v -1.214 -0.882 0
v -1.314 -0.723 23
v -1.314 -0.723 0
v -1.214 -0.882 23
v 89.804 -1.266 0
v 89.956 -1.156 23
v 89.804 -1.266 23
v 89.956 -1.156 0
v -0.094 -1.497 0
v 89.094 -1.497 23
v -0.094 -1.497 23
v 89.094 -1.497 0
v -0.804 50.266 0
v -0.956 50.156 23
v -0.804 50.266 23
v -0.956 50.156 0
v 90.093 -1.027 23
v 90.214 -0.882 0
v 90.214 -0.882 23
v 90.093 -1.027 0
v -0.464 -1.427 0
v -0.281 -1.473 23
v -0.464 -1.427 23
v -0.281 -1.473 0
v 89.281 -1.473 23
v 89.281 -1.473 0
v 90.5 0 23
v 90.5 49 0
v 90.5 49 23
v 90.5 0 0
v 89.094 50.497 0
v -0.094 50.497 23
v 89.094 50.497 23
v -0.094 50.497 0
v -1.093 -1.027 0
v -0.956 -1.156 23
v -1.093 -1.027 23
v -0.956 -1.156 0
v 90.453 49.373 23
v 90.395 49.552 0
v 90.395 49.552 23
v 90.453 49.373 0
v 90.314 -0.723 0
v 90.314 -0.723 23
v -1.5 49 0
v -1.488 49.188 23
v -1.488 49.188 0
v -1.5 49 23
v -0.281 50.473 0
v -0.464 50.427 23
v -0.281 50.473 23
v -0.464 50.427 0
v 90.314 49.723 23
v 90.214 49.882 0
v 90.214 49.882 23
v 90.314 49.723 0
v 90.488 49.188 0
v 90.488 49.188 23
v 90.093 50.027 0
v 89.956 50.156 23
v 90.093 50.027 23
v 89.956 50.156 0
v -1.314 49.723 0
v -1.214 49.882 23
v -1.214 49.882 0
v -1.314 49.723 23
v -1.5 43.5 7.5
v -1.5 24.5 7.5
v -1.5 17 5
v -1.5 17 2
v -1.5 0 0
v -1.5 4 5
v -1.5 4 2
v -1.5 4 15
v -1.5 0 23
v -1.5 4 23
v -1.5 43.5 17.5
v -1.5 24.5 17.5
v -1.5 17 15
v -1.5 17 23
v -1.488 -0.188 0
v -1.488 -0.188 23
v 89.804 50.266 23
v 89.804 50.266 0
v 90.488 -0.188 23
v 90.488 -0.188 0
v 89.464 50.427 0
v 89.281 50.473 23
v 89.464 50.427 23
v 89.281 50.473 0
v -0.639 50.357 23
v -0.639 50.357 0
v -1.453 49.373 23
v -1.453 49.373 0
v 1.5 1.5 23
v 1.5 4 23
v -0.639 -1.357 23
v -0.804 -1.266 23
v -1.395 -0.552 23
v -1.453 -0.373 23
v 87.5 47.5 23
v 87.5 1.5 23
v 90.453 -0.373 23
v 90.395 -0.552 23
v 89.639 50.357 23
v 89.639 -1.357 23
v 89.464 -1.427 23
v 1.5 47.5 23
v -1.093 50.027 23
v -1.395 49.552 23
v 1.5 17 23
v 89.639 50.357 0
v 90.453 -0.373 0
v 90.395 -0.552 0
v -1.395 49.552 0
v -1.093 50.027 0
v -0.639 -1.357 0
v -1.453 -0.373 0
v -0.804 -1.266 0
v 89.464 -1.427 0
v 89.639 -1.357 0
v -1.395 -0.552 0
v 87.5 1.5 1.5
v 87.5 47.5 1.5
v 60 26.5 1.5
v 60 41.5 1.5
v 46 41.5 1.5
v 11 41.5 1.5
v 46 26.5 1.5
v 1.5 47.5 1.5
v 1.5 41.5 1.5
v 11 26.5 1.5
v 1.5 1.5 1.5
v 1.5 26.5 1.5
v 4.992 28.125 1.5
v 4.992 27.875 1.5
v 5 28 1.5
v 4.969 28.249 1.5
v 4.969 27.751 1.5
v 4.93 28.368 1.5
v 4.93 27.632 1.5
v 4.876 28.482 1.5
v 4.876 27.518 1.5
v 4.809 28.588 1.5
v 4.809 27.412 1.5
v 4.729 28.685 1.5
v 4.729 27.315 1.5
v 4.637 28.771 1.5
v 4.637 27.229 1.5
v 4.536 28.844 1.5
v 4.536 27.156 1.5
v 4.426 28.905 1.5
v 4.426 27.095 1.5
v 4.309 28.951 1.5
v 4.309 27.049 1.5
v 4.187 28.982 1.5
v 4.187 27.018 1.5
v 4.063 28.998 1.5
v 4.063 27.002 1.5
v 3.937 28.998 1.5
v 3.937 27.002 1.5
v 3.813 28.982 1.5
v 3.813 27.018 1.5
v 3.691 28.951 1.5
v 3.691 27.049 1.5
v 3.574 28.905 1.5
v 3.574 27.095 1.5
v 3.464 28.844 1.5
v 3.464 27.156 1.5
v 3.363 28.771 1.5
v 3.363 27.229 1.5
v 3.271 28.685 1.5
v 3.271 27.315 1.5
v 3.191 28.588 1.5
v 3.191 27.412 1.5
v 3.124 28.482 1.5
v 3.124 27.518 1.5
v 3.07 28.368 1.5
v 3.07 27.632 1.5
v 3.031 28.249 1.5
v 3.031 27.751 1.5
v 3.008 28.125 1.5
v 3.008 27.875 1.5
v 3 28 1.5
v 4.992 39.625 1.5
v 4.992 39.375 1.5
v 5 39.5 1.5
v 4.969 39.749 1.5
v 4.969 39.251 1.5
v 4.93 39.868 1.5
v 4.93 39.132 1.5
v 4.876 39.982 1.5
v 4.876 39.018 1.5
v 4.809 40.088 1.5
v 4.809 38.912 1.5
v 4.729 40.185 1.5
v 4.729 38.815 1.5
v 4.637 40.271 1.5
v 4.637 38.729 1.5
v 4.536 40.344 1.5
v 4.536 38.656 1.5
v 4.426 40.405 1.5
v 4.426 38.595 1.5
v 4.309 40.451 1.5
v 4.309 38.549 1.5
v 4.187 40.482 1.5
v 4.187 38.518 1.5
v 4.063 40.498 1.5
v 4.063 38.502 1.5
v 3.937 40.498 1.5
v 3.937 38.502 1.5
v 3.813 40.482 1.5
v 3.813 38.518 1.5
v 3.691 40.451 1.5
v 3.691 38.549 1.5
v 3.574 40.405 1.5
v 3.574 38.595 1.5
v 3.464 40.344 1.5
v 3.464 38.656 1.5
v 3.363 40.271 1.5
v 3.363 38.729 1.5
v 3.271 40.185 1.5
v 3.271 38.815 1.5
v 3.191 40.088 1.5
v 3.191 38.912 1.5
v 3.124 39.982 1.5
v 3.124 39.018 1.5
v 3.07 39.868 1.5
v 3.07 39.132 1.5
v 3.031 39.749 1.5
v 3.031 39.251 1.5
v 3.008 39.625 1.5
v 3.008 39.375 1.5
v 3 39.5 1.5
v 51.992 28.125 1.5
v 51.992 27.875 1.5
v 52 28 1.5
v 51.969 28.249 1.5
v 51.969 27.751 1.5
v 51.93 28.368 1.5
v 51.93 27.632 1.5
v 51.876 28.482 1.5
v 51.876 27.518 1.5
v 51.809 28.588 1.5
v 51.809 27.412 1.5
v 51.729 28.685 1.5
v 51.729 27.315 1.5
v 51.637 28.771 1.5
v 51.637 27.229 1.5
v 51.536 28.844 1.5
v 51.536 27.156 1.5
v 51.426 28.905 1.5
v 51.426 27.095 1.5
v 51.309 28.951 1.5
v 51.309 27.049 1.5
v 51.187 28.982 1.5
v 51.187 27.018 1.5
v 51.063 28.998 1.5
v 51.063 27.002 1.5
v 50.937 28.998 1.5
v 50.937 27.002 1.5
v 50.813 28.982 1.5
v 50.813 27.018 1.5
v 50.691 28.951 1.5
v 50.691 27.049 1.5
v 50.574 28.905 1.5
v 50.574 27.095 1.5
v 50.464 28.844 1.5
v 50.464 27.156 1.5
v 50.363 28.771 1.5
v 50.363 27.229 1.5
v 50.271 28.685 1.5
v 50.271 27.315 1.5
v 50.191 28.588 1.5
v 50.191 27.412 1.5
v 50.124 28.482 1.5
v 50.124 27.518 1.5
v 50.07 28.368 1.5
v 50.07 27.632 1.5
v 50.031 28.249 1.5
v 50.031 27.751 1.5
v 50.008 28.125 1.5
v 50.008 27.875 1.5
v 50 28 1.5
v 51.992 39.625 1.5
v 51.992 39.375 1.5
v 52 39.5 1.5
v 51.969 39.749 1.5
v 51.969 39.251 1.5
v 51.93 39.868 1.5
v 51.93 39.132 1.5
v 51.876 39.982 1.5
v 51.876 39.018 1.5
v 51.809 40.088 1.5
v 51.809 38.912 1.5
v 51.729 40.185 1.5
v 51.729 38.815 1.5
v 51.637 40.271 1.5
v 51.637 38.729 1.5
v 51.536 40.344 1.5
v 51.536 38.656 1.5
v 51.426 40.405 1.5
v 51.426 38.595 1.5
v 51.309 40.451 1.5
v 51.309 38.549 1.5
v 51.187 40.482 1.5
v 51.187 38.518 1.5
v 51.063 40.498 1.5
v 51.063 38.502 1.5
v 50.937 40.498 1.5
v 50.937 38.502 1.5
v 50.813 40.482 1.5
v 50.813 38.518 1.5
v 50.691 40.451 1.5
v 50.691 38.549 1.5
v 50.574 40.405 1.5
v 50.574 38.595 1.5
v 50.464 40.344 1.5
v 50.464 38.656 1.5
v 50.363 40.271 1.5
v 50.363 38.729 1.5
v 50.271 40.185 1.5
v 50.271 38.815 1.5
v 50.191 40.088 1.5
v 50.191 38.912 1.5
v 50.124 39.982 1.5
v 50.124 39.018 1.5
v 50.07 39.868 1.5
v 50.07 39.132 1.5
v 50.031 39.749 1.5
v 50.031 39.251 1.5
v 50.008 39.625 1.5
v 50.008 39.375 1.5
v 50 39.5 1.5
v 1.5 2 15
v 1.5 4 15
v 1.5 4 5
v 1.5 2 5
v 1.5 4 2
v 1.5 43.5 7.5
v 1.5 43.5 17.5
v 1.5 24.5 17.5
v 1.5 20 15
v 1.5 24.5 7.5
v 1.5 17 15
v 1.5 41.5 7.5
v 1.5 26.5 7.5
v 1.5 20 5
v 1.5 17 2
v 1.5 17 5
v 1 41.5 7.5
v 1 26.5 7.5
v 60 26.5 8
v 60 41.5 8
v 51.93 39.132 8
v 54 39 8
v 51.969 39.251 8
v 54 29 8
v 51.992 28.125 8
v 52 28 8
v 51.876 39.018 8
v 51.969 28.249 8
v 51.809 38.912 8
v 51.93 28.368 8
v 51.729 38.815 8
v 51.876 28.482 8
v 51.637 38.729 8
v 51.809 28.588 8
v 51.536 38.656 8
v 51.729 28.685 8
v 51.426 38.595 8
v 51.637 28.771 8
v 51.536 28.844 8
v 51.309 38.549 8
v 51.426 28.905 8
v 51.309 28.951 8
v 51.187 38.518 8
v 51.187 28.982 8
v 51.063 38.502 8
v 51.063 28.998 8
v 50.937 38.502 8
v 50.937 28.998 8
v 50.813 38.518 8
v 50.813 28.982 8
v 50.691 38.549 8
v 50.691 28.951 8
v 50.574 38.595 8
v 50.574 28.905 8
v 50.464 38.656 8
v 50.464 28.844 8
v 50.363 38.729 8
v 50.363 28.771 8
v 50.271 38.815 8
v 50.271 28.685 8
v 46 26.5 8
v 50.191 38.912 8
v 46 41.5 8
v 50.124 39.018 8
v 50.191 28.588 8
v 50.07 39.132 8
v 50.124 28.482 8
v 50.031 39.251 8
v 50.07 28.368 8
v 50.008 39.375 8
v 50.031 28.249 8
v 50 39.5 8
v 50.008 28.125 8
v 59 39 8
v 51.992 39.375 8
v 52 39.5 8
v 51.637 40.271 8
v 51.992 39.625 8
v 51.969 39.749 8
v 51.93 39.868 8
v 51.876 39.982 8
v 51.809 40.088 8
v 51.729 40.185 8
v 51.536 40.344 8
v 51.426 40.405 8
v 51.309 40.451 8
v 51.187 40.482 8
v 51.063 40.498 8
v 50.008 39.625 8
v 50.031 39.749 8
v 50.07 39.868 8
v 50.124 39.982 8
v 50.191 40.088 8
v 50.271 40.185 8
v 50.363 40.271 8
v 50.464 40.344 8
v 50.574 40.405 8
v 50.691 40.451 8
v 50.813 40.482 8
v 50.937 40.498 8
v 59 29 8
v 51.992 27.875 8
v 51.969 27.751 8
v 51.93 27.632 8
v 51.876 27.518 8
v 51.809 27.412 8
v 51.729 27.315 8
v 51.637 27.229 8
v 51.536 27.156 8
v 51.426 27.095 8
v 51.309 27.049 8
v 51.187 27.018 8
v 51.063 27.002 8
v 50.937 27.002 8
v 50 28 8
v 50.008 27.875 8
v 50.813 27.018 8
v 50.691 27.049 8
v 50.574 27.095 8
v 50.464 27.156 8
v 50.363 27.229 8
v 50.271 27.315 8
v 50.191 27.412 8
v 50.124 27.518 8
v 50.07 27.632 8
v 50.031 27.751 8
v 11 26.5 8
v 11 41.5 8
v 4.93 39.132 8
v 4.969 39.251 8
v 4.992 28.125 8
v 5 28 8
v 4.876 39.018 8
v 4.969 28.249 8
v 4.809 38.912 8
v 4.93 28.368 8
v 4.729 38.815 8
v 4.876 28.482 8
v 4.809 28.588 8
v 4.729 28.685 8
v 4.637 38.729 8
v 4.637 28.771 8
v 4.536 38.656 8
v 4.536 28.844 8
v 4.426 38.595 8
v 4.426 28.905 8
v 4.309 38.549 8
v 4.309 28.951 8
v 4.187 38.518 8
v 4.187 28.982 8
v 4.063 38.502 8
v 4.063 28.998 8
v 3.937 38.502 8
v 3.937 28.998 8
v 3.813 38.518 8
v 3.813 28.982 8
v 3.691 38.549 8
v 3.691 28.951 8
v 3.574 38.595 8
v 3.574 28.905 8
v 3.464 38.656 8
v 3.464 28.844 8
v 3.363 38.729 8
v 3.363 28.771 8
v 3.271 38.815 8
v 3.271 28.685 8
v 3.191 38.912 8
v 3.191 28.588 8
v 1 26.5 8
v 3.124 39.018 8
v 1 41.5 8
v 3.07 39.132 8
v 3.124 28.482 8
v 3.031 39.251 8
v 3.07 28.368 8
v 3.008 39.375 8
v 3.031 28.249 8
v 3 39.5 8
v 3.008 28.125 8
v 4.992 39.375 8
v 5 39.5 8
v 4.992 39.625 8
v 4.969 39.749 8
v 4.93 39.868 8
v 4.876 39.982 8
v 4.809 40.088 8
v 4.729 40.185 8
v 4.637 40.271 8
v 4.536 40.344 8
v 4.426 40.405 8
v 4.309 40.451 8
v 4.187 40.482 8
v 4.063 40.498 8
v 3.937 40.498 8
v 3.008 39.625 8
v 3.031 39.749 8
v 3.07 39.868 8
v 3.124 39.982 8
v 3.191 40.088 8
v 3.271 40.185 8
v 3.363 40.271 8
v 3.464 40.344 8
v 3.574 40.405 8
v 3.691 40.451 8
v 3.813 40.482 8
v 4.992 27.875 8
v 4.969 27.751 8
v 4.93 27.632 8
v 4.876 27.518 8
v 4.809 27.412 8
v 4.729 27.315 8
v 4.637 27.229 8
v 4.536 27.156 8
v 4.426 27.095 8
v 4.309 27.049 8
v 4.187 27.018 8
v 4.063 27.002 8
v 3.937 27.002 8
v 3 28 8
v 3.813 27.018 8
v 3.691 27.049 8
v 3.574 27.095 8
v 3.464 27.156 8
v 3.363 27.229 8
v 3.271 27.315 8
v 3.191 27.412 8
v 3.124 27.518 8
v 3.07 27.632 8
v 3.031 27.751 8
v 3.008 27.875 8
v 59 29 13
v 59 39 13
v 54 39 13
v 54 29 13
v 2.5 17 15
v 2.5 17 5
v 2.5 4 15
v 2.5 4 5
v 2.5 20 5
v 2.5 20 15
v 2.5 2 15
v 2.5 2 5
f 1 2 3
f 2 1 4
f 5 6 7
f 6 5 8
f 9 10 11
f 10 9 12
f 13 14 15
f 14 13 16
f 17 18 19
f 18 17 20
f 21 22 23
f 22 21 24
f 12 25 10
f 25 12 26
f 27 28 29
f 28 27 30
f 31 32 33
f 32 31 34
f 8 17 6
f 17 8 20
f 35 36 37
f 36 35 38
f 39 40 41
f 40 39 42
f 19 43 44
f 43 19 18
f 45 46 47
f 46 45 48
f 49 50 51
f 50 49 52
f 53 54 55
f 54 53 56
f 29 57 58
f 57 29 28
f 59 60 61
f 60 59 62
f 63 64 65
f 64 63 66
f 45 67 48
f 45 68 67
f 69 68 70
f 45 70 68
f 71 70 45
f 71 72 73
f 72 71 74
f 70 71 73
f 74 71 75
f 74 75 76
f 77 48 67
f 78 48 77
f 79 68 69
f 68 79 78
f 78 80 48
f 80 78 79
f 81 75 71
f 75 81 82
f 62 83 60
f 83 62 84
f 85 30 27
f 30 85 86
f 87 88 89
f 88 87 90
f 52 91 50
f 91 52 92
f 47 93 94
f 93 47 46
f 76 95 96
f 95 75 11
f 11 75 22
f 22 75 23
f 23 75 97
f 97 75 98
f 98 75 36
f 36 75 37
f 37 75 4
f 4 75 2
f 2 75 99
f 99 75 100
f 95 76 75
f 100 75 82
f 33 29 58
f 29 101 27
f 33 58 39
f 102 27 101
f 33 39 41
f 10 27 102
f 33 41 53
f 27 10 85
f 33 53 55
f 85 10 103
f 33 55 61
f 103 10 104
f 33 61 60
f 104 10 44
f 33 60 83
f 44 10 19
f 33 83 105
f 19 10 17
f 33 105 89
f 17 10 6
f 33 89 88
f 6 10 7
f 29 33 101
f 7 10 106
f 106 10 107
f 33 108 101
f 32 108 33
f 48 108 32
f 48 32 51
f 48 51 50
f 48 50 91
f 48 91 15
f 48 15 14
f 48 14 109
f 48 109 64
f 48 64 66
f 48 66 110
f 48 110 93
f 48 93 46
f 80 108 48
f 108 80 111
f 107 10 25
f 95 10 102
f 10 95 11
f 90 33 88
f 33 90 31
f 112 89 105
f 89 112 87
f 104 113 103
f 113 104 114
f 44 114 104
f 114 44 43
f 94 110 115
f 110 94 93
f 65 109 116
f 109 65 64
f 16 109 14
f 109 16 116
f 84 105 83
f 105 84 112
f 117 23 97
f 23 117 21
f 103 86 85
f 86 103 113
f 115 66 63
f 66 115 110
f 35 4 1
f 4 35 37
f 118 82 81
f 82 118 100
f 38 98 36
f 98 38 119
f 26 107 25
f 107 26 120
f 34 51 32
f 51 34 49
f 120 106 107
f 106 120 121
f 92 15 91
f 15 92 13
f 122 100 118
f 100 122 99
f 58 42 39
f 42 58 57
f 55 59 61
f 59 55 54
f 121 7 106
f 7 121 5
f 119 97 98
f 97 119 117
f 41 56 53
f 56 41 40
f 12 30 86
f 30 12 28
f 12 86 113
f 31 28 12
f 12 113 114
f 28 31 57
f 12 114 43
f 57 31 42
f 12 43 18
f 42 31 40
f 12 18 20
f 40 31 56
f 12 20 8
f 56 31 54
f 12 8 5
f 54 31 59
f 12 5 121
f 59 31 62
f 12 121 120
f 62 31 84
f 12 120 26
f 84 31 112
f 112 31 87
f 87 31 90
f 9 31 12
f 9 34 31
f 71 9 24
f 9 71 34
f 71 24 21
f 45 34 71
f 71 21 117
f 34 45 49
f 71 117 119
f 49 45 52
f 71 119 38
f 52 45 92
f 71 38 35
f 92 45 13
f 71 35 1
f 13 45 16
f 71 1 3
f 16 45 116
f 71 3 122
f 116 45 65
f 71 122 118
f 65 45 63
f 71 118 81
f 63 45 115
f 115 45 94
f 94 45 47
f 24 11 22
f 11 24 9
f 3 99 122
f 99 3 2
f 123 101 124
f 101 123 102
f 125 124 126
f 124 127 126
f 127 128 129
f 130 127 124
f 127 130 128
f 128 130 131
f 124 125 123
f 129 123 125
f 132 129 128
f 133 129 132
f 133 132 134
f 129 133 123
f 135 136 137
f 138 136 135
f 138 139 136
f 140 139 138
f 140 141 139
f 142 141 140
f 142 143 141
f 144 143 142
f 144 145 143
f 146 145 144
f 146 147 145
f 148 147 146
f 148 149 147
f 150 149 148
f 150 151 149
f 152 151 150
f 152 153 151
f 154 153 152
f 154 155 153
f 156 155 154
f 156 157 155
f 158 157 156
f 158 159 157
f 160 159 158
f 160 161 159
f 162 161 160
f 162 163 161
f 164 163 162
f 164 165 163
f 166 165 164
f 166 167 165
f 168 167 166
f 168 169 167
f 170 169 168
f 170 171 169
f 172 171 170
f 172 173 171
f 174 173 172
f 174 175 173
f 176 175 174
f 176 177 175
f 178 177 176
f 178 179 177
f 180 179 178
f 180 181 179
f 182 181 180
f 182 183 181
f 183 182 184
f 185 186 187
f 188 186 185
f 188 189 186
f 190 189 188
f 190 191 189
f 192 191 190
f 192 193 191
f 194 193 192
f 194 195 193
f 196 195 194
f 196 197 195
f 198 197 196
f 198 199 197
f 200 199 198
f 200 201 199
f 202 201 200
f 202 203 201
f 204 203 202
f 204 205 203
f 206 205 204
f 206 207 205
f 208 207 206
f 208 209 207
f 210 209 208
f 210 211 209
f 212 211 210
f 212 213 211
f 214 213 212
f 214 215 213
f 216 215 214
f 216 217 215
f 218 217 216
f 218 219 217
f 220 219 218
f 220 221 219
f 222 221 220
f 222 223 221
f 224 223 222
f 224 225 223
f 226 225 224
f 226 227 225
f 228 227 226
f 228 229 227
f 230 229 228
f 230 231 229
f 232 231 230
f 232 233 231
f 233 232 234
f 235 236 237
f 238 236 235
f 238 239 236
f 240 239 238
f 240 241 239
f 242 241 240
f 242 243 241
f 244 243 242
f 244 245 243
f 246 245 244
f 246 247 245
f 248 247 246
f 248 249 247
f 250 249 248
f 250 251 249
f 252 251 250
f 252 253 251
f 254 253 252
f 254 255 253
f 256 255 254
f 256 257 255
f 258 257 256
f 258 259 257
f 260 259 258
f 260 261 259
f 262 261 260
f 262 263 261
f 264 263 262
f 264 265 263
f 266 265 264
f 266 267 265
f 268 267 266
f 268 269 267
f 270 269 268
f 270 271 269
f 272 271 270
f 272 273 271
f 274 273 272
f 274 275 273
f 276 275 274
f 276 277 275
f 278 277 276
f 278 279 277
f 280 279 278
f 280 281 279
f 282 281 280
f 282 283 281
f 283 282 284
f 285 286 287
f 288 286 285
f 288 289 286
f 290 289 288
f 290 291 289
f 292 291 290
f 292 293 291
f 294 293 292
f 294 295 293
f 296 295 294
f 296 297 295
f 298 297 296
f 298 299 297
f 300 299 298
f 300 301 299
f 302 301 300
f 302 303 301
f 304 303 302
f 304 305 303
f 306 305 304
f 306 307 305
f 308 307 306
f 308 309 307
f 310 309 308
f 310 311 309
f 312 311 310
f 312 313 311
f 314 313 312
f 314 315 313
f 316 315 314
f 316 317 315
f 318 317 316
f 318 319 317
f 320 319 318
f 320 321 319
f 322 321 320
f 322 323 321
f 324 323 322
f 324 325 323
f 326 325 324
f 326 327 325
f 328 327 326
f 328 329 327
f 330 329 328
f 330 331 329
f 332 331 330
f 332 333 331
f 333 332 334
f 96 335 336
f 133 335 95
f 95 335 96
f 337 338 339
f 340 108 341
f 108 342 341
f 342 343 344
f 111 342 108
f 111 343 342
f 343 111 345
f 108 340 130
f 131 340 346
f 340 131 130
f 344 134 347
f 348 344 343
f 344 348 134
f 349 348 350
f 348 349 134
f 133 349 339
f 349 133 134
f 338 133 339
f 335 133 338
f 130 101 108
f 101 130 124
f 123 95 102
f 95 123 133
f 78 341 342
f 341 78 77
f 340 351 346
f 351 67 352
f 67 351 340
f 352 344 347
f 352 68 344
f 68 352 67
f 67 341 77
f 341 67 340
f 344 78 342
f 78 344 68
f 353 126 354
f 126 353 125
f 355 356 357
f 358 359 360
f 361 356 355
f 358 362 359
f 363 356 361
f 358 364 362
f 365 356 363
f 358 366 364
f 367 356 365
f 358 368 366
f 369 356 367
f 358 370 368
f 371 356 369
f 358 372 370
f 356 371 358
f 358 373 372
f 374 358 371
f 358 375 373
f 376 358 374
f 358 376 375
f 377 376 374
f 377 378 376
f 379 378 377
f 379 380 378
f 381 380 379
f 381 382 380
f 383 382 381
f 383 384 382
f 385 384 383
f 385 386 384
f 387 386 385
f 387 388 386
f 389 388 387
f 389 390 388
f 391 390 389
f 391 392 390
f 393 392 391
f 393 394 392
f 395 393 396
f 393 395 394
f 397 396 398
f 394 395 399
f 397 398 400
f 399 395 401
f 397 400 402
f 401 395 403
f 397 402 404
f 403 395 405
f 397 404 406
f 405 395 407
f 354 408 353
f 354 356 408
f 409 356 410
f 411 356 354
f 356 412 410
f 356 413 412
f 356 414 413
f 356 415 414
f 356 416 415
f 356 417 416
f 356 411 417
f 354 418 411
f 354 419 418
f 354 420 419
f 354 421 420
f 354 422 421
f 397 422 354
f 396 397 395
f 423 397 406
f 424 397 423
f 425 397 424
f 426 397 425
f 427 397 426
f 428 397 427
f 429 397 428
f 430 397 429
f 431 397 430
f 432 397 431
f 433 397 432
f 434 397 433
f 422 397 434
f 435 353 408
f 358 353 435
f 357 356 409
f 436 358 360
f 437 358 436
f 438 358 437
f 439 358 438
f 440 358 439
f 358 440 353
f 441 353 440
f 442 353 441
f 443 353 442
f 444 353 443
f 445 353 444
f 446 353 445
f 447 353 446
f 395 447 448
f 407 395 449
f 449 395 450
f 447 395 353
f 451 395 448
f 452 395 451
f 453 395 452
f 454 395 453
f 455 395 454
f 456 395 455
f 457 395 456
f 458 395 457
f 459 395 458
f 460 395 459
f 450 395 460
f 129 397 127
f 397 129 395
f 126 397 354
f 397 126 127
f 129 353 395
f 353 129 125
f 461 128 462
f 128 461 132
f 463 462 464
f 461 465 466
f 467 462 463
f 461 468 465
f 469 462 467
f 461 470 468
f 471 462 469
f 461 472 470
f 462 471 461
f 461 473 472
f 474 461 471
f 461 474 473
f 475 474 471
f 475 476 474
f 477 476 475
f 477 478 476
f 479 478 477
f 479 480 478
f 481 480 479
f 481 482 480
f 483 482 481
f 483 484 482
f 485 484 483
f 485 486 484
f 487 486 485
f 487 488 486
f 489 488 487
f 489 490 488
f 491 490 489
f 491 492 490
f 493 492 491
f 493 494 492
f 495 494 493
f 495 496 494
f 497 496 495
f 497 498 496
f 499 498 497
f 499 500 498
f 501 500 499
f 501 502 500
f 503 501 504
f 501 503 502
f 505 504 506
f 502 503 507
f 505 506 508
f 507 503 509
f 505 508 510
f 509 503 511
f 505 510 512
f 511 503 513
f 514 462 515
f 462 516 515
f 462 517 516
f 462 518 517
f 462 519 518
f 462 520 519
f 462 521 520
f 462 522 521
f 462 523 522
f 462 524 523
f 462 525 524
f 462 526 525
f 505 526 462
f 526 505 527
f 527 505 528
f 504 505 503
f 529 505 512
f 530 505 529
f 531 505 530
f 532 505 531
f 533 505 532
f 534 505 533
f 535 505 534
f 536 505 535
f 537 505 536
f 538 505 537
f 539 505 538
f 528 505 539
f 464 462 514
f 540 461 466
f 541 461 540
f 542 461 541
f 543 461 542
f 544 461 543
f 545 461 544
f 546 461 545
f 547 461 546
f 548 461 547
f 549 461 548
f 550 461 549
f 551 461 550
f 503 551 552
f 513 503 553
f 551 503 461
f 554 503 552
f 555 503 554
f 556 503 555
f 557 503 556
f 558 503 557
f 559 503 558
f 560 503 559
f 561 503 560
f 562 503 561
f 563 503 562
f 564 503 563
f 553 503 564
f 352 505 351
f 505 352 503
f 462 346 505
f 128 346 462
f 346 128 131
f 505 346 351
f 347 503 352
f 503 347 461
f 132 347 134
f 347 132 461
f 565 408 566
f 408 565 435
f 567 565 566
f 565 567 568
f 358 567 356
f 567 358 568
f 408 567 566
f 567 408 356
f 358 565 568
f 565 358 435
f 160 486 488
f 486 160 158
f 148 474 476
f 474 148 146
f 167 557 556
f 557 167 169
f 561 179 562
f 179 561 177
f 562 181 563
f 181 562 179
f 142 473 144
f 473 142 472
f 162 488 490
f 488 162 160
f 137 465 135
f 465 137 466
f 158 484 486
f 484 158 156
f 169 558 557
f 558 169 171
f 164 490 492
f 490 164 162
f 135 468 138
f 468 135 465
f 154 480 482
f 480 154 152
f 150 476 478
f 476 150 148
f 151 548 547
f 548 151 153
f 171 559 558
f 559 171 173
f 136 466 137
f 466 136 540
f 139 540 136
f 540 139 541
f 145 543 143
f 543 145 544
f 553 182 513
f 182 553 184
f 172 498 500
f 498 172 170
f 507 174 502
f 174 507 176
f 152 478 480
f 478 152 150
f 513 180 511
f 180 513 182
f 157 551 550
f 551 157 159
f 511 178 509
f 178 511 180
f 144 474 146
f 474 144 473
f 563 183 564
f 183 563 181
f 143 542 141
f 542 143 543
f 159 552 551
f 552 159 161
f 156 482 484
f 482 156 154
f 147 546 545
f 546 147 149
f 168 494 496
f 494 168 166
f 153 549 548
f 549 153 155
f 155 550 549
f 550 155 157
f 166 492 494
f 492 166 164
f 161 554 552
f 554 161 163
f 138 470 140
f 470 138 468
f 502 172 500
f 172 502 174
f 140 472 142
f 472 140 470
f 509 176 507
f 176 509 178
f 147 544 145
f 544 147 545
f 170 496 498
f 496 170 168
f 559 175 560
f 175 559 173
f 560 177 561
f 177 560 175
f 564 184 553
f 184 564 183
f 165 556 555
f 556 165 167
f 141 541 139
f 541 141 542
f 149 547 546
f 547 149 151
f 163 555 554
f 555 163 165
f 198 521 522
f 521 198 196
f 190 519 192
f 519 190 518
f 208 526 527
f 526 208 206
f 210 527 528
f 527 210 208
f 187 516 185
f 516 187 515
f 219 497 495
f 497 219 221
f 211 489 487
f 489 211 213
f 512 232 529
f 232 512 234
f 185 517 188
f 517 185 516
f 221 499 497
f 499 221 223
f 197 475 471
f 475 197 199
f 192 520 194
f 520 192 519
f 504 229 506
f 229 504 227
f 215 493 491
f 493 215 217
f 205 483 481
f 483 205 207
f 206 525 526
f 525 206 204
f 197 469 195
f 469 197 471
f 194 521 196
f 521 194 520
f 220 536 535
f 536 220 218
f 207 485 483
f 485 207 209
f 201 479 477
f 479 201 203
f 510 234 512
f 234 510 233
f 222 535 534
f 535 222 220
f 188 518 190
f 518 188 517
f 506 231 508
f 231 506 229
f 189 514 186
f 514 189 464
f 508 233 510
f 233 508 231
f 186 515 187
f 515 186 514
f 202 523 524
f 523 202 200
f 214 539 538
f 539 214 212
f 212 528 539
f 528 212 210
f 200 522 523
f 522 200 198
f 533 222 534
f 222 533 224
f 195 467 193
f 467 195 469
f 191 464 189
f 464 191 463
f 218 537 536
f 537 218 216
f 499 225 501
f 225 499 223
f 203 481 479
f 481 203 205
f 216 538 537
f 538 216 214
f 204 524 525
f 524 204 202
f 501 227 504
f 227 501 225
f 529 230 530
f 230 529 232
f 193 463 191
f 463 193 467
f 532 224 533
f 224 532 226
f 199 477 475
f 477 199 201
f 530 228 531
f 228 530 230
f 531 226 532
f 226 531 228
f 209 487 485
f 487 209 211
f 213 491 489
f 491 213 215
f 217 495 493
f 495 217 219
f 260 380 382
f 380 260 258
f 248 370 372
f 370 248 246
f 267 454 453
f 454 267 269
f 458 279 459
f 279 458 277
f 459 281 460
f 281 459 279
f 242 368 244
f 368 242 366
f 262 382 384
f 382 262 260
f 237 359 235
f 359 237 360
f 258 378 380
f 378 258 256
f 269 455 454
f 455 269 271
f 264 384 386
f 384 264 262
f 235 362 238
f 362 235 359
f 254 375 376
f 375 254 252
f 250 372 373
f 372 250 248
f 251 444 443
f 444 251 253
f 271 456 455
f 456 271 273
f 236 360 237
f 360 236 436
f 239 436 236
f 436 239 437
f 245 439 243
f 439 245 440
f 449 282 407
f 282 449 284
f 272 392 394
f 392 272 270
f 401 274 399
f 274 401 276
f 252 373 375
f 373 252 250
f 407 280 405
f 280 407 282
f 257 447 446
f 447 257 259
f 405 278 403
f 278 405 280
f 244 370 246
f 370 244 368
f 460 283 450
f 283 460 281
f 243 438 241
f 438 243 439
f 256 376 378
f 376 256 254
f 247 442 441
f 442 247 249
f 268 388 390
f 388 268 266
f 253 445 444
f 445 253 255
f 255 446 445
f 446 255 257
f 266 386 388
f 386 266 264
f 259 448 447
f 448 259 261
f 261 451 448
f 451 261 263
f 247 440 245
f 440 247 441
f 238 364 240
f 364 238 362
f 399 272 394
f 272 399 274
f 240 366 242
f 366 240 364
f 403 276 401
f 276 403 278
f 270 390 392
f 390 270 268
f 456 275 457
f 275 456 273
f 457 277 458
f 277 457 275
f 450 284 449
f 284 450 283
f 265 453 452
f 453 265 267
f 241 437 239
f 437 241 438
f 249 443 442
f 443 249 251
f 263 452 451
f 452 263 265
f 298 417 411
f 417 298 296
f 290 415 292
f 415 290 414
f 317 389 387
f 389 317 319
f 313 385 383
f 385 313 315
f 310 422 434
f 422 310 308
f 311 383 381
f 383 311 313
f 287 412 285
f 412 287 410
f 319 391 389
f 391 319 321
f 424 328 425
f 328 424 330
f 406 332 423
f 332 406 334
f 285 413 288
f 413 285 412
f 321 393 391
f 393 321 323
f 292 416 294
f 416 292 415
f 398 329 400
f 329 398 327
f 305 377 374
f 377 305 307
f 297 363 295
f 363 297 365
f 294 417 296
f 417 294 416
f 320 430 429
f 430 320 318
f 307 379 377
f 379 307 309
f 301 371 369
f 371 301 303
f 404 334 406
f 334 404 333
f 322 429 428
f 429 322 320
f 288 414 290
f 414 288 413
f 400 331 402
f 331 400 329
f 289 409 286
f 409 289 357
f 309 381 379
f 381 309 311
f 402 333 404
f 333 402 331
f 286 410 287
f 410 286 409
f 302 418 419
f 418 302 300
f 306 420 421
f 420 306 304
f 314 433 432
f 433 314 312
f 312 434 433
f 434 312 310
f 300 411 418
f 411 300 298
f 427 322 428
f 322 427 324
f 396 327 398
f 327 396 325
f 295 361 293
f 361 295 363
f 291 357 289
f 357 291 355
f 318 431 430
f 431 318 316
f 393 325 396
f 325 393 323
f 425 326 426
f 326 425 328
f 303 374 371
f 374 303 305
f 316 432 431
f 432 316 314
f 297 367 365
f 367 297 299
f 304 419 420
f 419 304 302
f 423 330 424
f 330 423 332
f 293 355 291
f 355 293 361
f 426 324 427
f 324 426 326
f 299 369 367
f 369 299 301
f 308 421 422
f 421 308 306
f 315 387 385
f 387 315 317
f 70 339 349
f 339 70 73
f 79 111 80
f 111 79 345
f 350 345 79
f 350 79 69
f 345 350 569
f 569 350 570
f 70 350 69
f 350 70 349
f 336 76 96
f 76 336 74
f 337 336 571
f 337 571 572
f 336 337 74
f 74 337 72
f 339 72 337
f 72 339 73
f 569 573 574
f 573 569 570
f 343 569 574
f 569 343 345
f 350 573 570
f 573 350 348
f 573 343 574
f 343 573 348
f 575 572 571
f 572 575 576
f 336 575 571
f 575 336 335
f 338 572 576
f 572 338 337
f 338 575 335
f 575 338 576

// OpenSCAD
// A box for a raspberry pi pico with an SSH1306 display.
// two holes on the front, one for the USB and one for an 
// RJ-11 jack. 

$fn=50; // "resulution" of the circular shapes

// This was originally built to hold some key switches, it could be
// simplified.

// distance between wells
wellSpacing = 6;
keySide = 14;

// wall depth for base
wall = 1.5;
// heigth of base
bottomH = 23;

rows=2;
cols=4;
baseW = wellSpacing + cols * (wellSpacing+keySide);
baseH = wellSpacing + rows * (wellSpacing+keySide);


// radius for rounding the base box
roundR = 1.5;


// studs and holes for screws or posts that will hold a pico pi
module picoSupport() {
    h = 8;
    union() {
        color([0,1,0]) {
            difference (){
                union() {
                    translate([45,0,0]) cube([14, 15, h]); //base-back
                    cube([10, 15, h]); //base-front
                    translate([53,2.5,h])  cube([5,10,5]); //backstop
                }
                translate([3,1.5,0]) {
                    translate([0, 0, 0]) cylinder(h=10, d=2);
                    translate([0, 11.5, 0]) cylinder(h=10, d=2);
                }
                translate([50,1.5,0]) {
                    translate([0, 0, 0]) cylinder(h=15, d=2);
                    translate([0, 11.5, 0]) cylinder(h=15, d=2);
             
                }
            }
        }
    }
}

// create a box without sharp edges, the main portion of bottom
module rounded_box(x, y, z, radius){
    hull(){
        for (i = [0, x]) {
            for (j = [0, y]) {
                translate([i, j, 0]) {
                    cylinder(r=radius, h=z);
                }
            }
        }
    }
}

// the base of main
module bottom() {
    color([1,0,0]) {
        difference () {
            rounded_box(baseW+2*wall, baseH+2*wall, bottomH, roundR);
            // cut out the middle
            translate([wall,wall, wall]) {
                cube([baseW, baseH, bottomH]);
            }
        }
    }
}    


// Create the bottom container, on which the top() will be placed
module main() {
    debug = false;
    difference() {
            difference() {
                bottom();
                // make a hole for the usb plub
                translate([-10, wall+23, 5*wall]) {
                    cube([13, 19, 10]);
                }
            }        
    }
    // add supports for the pi, behind the USB hole
    translate([2.5-wall, 25+wall, 0]) {
        picoSupport();
    }
}

difference() {
    main();
    // cut out the RJ-11 hole
    translate([-2.5,4,2])color([0.5,0.8,0.2])cube([5.25, 13, 25]);
}
// add two tabs to better hold in the RJ11
translate([-1.5,17,5])cube([4,3,10]);
translate([-1.5,2,5])cube([4,2,10]);
